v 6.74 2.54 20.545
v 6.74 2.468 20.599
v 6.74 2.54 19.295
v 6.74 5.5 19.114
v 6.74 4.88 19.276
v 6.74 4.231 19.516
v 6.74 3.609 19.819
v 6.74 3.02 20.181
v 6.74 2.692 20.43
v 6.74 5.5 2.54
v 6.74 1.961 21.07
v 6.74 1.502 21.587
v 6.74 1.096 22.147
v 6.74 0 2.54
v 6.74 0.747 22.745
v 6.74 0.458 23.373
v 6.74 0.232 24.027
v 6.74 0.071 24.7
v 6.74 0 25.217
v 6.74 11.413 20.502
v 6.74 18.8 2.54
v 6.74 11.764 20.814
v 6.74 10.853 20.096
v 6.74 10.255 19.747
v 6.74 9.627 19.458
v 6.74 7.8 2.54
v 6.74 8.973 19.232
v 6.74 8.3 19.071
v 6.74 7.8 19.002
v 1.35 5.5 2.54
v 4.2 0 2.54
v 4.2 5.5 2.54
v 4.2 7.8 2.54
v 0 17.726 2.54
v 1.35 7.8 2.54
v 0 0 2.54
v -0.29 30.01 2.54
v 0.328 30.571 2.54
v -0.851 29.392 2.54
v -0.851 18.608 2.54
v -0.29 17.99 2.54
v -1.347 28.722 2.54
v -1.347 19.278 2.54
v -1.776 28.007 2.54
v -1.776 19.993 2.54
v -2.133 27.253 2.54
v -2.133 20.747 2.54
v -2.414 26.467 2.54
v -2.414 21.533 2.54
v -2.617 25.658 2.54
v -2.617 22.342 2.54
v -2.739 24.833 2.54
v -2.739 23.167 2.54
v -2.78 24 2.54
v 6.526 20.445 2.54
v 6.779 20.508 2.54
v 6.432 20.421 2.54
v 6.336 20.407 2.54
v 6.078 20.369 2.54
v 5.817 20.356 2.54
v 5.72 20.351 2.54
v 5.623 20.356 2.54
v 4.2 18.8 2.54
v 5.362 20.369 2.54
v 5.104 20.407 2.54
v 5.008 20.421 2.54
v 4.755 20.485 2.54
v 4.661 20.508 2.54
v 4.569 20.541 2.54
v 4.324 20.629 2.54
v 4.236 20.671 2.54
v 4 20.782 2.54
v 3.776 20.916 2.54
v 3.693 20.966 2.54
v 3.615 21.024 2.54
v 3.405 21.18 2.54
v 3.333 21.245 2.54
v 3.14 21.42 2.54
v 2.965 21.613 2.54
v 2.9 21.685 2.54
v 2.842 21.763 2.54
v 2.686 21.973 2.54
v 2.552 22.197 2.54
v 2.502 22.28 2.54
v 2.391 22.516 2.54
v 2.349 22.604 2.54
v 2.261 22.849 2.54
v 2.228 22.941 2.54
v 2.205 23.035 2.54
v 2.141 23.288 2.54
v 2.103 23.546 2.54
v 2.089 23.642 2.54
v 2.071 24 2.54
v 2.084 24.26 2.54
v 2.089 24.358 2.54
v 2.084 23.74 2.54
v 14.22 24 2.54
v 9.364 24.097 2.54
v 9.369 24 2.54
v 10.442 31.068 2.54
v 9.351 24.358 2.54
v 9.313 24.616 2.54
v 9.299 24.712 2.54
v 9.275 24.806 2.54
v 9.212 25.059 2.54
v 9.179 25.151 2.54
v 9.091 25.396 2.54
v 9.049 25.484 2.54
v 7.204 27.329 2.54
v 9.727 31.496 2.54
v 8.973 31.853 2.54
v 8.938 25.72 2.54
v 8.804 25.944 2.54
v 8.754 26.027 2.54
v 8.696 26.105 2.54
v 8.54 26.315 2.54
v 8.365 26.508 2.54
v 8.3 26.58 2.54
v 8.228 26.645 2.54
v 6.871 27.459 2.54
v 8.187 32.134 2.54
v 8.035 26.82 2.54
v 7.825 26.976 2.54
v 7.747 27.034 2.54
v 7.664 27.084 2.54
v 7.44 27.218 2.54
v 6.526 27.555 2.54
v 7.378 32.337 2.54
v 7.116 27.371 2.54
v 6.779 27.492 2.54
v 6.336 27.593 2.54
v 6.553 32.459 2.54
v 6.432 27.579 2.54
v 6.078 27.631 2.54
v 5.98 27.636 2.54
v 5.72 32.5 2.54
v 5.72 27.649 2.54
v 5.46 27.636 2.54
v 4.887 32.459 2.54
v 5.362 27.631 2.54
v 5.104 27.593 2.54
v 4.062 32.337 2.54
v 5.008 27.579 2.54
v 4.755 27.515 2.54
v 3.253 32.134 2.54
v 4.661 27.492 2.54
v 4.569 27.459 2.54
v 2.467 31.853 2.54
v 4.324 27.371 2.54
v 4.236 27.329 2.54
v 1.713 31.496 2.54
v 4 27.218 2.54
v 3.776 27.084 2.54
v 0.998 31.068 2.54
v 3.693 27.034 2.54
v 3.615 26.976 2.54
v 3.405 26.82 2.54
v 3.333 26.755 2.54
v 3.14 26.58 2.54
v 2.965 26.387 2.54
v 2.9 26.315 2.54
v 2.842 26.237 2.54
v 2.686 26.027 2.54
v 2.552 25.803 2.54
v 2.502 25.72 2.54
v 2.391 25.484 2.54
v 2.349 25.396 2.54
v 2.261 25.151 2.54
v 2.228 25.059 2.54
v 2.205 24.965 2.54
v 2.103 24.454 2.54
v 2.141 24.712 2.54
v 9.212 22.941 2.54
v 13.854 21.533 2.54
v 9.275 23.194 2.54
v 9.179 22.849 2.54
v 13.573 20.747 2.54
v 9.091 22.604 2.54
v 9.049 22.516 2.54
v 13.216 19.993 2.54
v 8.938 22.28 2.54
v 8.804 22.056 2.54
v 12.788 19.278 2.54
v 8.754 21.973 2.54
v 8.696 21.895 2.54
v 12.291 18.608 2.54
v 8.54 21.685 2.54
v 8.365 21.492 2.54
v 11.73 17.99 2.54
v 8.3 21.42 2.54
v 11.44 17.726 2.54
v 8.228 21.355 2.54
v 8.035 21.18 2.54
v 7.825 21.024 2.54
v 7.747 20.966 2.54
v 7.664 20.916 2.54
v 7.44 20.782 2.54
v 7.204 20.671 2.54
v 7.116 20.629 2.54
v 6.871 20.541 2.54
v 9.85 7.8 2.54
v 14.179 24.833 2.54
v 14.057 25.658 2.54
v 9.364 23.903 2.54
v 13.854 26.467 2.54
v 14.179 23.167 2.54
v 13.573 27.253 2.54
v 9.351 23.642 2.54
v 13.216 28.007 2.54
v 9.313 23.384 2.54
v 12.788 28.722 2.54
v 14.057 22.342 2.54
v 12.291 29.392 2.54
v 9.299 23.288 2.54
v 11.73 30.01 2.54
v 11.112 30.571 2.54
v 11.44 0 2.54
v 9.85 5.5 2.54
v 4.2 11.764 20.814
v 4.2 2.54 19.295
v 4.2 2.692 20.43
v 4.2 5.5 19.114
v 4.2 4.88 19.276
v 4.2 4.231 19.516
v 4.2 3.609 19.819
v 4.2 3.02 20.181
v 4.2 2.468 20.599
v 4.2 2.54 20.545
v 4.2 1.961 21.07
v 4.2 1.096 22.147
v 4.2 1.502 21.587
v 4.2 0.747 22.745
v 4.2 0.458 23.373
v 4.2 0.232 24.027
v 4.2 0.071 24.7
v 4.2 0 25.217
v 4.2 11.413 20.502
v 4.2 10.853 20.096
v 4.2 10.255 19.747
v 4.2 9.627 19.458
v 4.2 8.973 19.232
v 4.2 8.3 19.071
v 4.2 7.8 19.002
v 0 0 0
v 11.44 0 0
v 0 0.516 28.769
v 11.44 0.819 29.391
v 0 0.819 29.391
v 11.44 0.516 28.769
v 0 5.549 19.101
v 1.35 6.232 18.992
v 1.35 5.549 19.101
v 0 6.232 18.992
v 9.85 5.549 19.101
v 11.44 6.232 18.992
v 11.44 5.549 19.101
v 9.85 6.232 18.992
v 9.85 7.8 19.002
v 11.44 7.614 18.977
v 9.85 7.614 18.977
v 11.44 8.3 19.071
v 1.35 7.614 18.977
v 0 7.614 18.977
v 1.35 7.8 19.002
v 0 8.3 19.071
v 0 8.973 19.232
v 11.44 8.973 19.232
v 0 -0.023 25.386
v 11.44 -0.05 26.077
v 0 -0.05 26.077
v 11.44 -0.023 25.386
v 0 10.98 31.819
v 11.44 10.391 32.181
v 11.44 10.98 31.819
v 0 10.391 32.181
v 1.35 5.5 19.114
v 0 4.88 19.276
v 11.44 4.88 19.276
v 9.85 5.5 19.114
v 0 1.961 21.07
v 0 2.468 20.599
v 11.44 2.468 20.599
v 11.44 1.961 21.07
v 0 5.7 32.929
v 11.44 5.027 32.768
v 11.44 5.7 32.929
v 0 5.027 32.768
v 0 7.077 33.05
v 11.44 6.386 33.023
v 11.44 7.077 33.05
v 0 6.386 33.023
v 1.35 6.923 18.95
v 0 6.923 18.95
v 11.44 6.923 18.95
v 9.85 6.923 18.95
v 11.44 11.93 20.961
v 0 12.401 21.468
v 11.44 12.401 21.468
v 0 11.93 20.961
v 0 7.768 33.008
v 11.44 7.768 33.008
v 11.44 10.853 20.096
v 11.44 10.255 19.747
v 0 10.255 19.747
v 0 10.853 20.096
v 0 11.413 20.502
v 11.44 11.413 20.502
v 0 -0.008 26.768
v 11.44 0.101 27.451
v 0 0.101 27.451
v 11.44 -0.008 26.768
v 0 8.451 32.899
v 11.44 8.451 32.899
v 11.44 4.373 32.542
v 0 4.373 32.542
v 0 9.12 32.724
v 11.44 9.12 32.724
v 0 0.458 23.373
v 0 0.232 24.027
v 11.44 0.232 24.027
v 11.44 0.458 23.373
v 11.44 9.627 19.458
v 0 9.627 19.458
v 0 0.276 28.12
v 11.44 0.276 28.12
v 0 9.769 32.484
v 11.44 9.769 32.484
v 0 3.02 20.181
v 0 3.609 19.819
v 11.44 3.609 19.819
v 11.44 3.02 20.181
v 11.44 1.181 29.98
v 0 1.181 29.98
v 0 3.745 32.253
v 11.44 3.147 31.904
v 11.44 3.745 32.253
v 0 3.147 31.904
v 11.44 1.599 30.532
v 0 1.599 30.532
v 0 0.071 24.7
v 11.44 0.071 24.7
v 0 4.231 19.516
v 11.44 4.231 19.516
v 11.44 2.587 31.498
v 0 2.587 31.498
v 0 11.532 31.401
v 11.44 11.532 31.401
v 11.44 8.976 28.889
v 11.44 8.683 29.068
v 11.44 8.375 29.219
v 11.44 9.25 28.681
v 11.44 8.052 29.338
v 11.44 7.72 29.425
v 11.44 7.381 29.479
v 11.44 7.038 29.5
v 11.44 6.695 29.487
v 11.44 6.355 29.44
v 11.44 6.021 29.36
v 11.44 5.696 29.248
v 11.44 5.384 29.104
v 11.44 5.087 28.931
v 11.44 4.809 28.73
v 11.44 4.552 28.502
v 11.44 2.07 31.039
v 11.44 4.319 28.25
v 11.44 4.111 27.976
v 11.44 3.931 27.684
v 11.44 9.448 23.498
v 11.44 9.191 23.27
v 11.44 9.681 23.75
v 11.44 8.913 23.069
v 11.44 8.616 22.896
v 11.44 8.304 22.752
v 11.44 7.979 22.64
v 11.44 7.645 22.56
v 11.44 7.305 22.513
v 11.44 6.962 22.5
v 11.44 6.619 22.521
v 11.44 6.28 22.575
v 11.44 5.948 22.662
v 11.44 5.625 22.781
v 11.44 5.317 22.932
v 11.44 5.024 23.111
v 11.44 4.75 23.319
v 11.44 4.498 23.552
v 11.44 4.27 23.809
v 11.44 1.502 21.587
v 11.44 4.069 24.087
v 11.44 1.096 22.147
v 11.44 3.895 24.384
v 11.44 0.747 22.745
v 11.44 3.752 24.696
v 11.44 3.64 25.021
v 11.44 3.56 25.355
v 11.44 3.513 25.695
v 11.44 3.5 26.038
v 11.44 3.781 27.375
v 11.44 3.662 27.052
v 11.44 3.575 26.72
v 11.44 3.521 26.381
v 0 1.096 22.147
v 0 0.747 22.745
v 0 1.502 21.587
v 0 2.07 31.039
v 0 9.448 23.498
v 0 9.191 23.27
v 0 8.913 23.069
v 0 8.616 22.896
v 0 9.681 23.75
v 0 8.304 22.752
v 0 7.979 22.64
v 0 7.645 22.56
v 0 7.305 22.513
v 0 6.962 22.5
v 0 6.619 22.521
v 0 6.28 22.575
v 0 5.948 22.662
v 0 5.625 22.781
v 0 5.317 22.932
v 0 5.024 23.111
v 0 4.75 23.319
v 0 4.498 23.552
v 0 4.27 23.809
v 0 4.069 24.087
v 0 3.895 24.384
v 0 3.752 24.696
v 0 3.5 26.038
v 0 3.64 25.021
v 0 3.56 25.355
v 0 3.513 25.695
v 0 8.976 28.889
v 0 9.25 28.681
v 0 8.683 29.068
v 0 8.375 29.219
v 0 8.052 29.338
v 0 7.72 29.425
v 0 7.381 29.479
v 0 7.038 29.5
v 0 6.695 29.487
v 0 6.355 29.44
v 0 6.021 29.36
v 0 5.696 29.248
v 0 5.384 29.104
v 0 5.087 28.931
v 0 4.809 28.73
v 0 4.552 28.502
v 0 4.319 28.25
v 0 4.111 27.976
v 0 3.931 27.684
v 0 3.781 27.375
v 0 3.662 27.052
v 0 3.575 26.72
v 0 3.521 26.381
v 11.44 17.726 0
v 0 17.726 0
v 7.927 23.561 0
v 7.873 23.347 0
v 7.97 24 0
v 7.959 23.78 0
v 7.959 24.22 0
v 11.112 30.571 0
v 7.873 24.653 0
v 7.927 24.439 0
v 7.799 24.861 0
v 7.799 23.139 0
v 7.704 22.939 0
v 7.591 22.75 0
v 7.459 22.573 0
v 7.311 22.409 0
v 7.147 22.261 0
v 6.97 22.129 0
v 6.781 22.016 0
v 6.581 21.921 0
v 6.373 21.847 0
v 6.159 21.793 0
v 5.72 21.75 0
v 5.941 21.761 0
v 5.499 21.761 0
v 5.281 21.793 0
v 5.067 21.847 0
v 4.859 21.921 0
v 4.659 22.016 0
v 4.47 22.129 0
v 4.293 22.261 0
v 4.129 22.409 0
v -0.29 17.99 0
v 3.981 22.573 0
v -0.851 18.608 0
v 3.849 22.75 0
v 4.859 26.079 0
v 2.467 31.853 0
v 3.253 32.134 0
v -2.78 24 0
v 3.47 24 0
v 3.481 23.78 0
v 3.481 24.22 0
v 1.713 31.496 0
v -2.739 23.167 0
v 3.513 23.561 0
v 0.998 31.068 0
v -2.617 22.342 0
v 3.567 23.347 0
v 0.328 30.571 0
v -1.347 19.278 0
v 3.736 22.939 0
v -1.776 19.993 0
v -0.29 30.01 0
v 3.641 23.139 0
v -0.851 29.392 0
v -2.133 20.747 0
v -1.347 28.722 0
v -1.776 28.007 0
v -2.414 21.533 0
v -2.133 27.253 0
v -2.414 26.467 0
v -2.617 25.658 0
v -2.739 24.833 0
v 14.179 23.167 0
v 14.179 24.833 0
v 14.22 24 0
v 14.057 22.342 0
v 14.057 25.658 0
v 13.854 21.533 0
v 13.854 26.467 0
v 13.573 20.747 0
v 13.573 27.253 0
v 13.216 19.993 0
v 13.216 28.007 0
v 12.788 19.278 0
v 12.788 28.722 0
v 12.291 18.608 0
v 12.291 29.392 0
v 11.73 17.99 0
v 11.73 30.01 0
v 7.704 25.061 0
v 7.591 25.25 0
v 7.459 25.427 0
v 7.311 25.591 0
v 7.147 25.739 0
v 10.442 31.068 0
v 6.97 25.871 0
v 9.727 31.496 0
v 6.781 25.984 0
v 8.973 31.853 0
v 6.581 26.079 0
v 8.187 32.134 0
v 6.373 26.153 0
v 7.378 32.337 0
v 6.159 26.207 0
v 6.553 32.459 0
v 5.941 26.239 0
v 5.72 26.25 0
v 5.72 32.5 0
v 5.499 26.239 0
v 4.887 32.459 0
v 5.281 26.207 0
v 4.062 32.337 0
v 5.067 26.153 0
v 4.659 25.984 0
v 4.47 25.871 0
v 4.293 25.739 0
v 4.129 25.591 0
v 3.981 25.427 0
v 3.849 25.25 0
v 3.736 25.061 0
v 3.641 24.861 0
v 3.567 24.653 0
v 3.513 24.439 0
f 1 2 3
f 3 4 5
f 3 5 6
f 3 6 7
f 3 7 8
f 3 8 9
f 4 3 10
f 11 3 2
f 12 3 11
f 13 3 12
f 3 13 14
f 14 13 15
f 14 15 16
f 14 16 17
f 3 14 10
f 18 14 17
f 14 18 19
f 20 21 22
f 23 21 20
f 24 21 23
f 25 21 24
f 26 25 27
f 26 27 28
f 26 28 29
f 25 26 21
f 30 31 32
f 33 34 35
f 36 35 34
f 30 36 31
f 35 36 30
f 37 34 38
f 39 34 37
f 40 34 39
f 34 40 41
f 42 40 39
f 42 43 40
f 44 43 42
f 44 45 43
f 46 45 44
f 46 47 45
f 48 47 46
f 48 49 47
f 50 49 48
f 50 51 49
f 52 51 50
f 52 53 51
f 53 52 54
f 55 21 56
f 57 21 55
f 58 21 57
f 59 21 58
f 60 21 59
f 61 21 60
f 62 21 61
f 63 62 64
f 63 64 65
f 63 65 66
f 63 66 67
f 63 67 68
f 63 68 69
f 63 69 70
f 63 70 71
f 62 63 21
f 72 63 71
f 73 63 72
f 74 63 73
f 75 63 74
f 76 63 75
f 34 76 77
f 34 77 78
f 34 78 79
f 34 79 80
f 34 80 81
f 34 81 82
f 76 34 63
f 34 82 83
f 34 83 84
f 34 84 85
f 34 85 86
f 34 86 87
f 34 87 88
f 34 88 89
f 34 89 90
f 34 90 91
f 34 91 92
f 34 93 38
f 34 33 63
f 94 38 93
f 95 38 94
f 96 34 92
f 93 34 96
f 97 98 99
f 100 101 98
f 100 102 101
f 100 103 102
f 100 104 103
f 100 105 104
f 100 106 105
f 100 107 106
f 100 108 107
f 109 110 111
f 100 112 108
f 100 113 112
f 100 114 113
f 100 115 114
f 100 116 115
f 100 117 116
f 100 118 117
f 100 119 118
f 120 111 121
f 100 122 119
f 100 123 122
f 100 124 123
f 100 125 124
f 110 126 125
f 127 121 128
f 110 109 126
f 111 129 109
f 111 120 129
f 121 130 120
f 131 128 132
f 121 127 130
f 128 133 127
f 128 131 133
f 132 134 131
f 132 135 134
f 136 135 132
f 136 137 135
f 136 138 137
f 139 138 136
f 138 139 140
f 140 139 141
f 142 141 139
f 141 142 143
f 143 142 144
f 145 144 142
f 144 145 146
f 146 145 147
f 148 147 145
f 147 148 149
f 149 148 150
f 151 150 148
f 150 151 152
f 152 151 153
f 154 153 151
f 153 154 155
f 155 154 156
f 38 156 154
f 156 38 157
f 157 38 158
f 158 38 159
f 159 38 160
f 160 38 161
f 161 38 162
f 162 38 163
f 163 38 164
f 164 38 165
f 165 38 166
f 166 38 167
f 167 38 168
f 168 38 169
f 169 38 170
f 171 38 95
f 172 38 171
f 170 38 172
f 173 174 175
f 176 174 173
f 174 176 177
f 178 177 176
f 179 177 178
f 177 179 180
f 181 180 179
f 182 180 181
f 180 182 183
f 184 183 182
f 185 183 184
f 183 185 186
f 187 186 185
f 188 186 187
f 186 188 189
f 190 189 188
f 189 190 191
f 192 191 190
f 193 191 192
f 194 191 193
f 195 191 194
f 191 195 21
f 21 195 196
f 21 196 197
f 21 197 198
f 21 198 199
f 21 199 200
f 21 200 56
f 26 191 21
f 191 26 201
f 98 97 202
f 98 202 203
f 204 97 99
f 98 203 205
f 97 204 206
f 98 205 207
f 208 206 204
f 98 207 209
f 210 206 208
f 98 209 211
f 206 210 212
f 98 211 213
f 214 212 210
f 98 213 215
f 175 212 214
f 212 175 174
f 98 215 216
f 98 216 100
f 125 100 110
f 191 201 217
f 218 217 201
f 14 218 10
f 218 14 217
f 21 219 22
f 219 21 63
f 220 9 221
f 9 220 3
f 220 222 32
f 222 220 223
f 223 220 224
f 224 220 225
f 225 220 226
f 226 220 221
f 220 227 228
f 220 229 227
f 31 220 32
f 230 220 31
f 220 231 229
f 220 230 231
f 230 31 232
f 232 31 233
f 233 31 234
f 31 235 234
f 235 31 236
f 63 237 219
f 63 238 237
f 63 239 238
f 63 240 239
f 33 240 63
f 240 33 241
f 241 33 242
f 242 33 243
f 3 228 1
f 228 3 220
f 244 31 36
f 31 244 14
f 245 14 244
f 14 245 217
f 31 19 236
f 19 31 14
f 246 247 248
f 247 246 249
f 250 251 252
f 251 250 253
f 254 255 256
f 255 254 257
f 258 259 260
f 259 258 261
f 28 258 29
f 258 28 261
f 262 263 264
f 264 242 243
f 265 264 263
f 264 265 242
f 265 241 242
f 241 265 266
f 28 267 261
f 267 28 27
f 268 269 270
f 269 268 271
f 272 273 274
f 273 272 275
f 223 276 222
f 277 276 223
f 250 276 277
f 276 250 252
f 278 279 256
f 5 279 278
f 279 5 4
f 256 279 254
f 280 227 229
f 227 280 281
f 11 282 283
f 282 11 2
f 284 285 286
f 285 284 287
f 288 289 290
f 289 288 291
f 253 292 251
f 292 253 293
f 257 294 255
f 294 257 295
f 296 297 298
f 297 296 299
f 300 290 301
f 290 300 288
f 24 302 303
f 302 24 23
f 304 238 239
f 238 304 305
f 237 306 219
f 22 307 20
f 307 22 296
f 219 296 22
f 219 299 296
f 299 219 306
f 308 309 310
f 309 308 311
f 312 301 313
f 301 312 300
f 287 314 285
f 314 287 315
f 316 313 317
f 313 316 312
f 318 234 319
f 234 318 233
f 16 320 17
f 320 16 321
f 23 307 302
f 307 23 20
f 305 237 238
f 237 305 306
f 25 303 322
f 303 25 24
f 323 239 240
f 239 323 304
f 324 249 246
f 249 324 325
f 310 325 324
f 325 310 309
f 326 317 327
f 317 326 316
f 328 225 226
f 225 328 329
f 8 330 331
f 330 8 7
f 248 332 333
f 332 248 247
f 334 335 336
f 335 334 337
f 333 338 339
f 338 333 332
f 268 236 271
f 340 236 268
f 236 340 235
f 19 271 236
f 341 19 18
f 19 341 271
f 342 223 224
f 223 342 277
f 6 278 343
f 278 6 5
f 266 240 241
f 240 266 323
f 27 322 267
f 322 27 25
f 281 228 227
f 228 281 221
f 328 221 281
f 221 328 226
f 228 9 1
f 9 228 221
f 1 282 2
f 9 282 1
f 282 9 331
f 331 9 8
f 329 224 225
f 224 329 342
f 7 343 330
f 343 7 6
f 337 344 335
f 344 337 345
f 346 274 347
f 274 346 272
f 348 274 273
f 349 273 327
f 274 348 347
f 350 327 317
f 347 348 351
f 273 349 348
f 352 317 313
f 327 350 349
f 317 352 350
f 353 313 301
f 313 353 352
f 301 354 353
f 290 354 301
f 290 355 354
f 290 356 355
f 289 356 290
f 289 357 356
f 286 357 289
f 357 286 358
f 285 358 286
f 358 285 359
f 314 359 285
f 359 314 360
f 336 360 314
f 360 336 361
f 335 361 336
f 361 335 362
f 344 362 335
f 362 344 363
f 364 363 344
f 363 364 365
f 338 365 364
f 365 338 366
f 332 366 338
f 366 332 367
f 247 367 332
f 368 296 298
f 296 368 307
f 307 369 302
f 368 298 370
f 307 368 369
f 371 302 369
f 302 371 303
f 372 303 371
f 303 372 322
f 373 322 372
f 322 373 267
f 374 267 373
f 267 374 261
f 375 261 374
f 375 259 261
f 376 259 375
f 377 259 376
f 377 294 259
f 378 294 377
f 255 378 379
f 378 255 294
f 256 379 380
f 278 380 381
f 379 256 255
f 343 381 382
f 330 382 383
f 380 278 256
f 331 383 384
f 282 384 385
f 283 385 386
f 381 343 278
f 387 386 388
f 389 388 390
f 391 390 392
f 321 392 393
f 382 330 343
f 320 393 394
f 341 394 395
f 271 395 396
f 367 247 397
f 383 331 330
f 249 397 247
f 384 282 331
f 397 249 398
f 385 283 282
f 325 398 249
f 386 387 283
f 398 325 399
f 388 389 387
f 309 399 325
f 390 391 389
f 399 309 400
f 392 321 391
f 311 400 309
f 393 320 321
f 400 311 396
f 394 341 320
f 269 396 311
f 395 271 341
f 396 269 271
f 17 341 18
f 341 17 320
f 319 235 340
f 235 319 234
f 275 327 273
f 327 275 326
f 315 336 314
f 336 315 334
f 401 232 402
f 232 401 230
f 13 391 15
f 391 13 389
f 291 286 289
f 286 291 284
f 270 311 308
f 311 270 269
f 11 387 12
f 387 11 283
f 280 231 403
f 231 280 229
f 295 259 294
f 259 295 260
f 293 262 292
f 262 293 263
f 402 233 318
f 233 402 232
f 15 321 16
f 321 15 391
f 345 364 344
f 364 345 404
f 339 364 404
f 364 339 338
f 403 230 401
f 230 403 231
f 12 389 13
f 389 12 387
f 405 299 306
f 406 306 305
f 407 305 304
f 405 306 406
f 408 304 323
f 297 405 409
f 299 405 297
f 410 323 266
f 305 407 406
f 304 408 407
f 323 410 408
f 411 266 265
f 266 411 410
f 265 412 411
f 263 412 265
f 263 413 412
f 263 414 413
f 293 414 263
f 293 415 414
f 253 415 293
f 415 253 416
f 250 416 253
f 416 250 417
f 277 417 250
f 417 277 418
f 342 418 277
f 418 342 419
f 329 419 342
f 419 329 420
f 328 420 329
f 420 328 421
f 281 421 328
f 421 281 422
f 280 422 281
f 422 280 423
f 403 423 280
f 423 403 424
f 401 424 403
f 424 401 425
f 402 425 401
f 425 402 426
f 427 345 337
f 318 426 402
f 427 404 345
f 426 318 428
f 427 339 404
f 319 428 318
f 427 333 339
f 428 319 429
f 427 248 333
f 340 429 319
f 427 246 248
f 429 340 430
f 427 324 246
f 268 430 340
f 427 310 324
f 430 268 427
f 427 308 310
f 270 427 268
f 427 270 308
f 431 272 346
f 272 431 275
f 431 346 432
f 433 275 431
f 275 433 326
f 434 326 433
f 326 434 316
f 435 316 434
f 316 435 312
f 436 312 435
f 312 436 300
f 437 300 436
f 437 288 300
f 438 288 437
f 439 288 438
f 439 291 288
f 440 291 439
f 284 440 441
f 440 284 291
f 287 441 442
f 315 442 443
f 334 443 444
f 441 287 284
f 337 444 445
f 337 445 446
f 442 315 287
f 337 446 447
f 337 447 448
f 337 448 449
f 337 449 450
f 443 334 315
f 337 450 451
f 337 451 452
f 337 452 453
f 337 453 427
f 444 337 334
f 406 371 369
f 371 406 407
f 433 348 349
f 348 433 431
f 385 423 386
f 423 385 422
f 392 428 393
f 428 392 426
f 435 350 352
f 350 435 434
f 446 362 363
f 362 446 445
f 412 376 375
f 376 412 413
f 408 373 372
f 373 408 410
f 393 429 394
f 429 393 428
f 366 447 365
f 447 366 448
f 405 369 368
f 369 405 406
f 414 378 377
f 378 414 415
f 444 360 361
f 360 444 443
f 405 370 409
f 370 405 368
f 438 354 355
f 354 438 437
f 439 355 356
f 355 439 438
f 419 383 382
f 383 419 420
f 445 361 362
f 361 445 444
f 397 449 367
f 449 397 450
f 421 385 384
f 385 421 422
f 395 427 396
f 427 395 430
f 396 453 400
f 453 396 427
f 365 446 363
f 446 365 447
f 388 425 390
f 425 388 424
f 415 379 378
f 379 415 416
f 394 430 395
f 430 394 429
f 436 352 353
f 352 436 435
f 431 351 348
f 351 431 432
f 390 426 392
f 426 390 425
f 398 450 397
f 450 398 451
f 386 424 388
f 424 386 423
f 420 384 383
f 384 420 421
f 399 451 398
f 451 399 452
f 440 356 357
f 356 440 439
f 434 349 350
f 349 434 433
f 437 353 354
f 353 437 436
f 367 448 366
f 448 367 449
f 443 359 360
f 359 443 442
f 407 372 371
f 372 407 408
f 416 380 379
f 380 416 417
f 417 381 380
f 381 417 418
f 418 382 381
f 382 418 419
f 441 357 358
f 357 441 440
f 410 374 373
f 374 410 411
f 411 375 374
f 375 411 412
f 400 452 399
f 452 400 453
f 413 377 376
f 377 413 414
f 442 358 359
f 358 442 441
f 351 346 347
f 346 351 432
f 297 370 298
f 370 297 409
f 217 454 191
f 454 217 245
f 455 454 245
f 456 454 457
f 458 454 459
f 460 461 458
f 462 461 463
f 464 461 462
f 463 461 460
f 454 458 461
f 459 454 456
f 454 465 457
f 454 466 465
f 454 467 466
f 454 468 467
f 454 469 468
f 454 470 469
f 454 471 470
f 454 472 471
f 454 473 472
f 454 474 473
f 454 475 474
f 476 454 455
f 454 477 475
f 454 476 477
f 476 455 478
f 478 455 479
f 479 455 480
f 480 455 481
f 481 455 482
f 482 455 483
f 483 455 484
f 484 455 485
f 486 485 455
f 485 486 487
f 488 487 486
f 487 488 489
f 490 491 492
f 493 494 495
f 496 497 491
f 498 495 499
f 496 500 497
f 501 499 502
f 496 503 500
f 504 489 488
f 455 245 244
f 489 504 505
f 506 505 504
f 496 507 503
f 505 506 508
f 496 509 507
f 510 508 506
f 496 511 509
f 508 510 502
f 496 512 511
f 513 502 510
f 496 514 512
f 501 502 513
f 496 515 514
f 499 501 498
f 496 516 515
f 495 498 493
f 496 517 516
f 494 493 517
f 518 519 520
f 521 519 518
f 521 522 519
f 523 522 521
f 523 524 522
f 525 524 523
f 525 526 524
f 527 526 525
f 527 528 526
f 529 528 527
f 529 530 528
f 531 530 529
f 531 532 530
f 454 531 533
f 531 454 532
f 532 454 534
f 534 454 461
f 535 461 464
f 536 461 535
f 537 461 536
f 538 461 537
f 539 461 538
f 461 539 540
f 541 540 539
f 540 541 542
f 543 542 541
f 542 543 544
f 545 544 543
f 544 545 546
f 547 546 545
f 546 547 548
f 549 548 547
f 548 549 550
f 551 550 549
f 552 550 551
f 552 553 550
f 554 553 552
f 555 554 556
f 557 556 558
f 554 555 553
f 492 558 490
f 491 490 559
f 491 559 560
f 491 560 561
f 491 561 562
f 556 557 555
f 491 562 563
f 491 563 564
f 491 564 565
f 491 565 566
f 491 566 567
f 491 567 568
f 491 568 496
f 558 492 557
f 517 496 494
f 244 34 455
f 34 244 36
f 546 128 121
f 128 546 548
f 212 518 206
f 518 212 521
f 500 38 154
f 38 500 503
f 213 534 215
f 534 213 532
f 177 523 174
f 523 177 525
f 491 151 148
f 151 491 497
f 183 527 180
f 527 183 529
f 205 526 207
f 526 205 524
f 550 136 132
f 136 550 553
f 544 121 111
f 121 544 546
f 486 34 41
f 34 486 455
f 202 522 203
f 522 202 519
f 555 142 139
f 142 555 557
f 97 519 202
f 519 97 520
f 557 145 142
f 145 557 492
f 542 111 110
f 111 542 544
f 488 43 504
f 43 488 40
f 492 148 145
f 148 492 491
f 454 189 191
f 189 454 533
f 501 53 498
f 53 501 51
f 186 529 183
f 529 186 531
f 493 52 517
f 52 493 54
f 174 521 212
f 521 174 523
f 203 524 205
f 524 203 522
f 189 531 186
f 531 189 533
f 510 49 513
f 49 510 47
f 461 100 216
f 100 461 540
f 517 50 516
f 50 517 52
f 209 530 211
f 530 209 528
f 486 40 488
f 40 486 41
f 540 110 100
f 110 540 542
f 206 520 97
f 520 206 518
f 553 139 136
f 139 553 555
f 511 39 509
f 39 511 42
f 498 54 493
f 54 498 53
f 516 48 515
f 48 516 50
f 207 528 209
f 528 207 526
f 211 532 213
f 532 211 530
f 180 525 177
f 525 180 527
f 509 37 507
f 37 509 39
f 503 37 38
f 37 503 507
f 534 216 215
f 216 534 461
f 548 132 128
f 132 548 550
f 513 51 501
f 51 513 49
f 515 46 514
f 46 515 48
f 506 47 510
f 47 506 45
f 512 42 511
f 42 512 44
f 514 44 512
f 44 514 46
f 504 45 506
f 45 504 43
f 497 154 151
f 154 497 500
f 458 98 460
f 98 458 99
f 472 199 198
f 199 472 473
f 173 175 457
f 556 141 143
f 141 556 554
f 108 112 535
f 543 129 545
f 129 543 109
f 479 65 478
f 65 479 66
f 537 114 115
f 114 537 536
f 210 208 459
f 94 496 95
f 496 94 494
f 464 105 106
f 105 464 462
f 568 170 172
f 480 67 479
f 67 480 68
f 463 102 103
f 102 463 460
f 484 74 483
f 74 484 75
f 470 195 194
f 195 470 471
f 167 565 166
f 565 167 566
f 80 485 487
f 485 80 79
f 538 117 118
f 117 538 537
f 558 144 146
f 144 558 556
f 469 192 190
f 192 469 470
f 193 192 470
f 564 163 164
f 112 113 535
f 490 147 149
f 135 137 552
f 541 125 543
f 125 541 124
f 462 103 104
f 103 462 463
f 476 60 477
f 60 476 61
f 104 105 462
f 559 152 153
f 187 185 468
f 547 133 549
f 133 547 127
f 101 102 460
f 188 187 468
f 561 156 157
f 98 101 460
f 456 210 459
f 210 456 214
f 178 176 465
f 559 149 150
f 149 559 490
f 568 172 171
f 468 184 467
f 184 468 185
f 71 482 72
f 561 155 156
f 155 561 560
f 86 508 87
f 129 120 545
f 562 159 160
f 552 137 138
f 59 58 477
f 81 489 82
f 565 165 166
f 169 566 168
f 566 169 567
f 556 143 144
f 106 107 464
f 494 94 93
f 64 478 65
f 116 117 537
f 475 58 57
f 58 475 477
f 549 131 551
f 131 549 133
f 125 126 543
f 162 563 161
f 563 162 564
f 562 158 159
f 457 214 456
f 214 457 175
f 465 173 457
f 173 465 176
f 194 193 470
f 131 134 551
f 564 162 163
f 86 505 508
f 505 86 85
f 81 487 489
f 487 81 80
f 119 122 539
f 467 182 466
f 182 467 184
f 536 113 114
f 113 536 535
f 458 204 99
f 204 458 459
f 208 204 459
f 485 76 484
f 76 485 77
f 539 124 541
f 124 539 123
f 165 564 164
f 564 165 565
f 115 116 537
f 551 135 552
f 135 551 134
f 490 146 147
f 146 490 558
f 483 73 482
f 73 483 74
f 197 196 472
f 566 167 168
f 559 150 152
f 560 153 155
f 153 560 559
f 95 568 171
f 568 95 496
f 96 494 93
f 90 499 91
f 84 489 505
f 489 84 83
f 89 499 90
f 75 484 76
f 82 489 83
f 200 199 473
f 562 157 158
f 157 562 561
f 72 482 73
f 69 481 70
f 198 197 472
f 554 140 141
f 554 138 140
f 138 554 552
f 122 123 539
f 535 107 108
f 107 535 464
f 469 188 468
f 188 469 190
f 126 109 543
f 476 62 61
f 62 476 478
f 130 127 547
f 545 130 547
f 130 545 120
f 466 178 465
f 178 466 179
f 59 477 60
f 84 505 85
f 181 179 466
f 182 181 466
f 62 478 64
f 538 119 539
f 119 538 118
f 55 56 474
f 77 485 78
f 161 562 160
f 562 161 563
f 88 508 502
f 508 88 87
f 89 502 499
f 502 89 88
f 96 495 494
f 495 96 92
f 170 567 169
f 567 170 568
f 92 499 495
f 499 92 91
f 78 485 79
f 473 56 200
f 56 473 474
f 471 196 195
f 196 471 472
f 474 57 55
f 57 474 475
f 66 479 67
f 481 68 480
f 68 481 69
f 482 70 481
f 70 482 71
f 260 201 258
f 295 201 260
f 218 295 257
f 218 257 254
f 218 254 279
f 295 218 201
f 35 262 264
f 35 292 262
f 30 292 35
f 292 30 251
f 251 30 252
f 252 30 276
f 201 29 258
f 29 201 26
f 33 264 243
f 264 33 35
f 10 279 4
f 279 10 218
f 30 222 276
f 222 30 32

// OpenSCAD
/* Copyleft Roy Sigurd Karlsbakk <roy@karlsbakk.net> 2019
 * Dings for å ersatatte drit fra Plantasjen
 *
 * Lisens  CC BY-NC https://creativecommons.org/licenses/by-nc/4.0/legalcode.no
 * License CC BY-NC https://creativecommons.org/licenses/by-nc/4.0/legalcode
 */

$fn=64;

cube_x=11.44;
cube_y=19.25;
cube_z=2.54;

wall_width=cube_z;

bottom_cube=[cube_x,cube_y,cube_z];
circle_center=[cube_x/2,24];
outer_circle_d=17;
cone_outer_d=10;
cone_inner_d=4.5;
cone_edge=0.5;
screw_cyl_height=2;
cone_height=screw_cyl_height+cube_z;
out_pin_thickness=2.54;
out_pin_x=8.5;
out_pin_y=2.3;
out_pin_z=18;
out_pin_origo=[1.35,5.5,cube_z];
back_out_y_bottom=0.5;
back_out_y_top=3.2;
front_out_y_bottom=back_out_y_bottom+19;
front_out_y_top=back_out_y_top+9;

module festering(width, outer_d, inner_d, rotational_angle=360) {
    difference() {
        cylinder(d=outer_d, h=width);
        cylinder(d=inner_d, h=width);
        translate([0,0,0]) {
            rotate([0,0,0]) {
                cube([7.5,7.5,cube_x]);
            }
        }
    }
}

module base() {
    cube(bottom_cube);
    translate(circle_center)  {
        cylinder(d=outer_circle_d,h=cube_z);
//        cylinder(h=cone_height,d=cone_outer_d);
    }
}

module trekantdings() {
    fra_x=4.2;
    fra_y=0.3;
    trekanthoyde=18.7;
    trekantfram_topp=8.2;
    trekantfram_bunn=18.5;
    helling_y=2.5;
    trekantdybde_y=8.8;

    polypoints=[
        [fra_x,fra_y,cube_z],                                                   // 0
        [fra_x,fra_y+trekantfram_bunn,cube_z],                                  // 1
        [fra_x+wall_width,fra_y+trekantfram_bunn,cube_z],                       // 2
        [fra_x+wall_width,fra_y,cube_z],                                        // 3
        [fra_x,fra_y+helling_y,cube_z+trekanthoyde],                            // 4
        [fra_x,fra_y+helling_y+trekantdybde_y,cube_z+trekanthoyde],             // 5
        [fra_x+wall_width,fra_y+helling_y+trekantdybde_y,cube_z+trekanthoyde],  // 6
        [fra_x+wall_width,fra_y+helling_y,cube_z+trekanthoyde]                  // 7
    ];
    polyfaces=[
        [0,3,2,1],
        [1,2,6,5],
        [4,5,6,7],
        [0,4,7,3],
        [0,1,5,4],
        [2,3,7,6],
    ];
    polyhedron(polypoints, polyfaces);

    // Korreksjonsblokk
    
    translate([fra_x,0,cube_z]) {
        cube([wall_width,wall_width,24]);
    }    
}
difference() {
    base();
    translate(circle_center)  {
        cylinder(d1=cone_inner_d,d2=cone_outer_d-cone_edge,h=cone_height);
    }
}
translate(out_pin_origo) {
    cube([out_pin_x,out_pin_y,out_pin_z]);
}
trekantdings();

translate([0,7,26]) {
    rotate([90,40,90]) {
        festering(width=cube_x, outer_d=14.1, inner_d=7);
    }
}
